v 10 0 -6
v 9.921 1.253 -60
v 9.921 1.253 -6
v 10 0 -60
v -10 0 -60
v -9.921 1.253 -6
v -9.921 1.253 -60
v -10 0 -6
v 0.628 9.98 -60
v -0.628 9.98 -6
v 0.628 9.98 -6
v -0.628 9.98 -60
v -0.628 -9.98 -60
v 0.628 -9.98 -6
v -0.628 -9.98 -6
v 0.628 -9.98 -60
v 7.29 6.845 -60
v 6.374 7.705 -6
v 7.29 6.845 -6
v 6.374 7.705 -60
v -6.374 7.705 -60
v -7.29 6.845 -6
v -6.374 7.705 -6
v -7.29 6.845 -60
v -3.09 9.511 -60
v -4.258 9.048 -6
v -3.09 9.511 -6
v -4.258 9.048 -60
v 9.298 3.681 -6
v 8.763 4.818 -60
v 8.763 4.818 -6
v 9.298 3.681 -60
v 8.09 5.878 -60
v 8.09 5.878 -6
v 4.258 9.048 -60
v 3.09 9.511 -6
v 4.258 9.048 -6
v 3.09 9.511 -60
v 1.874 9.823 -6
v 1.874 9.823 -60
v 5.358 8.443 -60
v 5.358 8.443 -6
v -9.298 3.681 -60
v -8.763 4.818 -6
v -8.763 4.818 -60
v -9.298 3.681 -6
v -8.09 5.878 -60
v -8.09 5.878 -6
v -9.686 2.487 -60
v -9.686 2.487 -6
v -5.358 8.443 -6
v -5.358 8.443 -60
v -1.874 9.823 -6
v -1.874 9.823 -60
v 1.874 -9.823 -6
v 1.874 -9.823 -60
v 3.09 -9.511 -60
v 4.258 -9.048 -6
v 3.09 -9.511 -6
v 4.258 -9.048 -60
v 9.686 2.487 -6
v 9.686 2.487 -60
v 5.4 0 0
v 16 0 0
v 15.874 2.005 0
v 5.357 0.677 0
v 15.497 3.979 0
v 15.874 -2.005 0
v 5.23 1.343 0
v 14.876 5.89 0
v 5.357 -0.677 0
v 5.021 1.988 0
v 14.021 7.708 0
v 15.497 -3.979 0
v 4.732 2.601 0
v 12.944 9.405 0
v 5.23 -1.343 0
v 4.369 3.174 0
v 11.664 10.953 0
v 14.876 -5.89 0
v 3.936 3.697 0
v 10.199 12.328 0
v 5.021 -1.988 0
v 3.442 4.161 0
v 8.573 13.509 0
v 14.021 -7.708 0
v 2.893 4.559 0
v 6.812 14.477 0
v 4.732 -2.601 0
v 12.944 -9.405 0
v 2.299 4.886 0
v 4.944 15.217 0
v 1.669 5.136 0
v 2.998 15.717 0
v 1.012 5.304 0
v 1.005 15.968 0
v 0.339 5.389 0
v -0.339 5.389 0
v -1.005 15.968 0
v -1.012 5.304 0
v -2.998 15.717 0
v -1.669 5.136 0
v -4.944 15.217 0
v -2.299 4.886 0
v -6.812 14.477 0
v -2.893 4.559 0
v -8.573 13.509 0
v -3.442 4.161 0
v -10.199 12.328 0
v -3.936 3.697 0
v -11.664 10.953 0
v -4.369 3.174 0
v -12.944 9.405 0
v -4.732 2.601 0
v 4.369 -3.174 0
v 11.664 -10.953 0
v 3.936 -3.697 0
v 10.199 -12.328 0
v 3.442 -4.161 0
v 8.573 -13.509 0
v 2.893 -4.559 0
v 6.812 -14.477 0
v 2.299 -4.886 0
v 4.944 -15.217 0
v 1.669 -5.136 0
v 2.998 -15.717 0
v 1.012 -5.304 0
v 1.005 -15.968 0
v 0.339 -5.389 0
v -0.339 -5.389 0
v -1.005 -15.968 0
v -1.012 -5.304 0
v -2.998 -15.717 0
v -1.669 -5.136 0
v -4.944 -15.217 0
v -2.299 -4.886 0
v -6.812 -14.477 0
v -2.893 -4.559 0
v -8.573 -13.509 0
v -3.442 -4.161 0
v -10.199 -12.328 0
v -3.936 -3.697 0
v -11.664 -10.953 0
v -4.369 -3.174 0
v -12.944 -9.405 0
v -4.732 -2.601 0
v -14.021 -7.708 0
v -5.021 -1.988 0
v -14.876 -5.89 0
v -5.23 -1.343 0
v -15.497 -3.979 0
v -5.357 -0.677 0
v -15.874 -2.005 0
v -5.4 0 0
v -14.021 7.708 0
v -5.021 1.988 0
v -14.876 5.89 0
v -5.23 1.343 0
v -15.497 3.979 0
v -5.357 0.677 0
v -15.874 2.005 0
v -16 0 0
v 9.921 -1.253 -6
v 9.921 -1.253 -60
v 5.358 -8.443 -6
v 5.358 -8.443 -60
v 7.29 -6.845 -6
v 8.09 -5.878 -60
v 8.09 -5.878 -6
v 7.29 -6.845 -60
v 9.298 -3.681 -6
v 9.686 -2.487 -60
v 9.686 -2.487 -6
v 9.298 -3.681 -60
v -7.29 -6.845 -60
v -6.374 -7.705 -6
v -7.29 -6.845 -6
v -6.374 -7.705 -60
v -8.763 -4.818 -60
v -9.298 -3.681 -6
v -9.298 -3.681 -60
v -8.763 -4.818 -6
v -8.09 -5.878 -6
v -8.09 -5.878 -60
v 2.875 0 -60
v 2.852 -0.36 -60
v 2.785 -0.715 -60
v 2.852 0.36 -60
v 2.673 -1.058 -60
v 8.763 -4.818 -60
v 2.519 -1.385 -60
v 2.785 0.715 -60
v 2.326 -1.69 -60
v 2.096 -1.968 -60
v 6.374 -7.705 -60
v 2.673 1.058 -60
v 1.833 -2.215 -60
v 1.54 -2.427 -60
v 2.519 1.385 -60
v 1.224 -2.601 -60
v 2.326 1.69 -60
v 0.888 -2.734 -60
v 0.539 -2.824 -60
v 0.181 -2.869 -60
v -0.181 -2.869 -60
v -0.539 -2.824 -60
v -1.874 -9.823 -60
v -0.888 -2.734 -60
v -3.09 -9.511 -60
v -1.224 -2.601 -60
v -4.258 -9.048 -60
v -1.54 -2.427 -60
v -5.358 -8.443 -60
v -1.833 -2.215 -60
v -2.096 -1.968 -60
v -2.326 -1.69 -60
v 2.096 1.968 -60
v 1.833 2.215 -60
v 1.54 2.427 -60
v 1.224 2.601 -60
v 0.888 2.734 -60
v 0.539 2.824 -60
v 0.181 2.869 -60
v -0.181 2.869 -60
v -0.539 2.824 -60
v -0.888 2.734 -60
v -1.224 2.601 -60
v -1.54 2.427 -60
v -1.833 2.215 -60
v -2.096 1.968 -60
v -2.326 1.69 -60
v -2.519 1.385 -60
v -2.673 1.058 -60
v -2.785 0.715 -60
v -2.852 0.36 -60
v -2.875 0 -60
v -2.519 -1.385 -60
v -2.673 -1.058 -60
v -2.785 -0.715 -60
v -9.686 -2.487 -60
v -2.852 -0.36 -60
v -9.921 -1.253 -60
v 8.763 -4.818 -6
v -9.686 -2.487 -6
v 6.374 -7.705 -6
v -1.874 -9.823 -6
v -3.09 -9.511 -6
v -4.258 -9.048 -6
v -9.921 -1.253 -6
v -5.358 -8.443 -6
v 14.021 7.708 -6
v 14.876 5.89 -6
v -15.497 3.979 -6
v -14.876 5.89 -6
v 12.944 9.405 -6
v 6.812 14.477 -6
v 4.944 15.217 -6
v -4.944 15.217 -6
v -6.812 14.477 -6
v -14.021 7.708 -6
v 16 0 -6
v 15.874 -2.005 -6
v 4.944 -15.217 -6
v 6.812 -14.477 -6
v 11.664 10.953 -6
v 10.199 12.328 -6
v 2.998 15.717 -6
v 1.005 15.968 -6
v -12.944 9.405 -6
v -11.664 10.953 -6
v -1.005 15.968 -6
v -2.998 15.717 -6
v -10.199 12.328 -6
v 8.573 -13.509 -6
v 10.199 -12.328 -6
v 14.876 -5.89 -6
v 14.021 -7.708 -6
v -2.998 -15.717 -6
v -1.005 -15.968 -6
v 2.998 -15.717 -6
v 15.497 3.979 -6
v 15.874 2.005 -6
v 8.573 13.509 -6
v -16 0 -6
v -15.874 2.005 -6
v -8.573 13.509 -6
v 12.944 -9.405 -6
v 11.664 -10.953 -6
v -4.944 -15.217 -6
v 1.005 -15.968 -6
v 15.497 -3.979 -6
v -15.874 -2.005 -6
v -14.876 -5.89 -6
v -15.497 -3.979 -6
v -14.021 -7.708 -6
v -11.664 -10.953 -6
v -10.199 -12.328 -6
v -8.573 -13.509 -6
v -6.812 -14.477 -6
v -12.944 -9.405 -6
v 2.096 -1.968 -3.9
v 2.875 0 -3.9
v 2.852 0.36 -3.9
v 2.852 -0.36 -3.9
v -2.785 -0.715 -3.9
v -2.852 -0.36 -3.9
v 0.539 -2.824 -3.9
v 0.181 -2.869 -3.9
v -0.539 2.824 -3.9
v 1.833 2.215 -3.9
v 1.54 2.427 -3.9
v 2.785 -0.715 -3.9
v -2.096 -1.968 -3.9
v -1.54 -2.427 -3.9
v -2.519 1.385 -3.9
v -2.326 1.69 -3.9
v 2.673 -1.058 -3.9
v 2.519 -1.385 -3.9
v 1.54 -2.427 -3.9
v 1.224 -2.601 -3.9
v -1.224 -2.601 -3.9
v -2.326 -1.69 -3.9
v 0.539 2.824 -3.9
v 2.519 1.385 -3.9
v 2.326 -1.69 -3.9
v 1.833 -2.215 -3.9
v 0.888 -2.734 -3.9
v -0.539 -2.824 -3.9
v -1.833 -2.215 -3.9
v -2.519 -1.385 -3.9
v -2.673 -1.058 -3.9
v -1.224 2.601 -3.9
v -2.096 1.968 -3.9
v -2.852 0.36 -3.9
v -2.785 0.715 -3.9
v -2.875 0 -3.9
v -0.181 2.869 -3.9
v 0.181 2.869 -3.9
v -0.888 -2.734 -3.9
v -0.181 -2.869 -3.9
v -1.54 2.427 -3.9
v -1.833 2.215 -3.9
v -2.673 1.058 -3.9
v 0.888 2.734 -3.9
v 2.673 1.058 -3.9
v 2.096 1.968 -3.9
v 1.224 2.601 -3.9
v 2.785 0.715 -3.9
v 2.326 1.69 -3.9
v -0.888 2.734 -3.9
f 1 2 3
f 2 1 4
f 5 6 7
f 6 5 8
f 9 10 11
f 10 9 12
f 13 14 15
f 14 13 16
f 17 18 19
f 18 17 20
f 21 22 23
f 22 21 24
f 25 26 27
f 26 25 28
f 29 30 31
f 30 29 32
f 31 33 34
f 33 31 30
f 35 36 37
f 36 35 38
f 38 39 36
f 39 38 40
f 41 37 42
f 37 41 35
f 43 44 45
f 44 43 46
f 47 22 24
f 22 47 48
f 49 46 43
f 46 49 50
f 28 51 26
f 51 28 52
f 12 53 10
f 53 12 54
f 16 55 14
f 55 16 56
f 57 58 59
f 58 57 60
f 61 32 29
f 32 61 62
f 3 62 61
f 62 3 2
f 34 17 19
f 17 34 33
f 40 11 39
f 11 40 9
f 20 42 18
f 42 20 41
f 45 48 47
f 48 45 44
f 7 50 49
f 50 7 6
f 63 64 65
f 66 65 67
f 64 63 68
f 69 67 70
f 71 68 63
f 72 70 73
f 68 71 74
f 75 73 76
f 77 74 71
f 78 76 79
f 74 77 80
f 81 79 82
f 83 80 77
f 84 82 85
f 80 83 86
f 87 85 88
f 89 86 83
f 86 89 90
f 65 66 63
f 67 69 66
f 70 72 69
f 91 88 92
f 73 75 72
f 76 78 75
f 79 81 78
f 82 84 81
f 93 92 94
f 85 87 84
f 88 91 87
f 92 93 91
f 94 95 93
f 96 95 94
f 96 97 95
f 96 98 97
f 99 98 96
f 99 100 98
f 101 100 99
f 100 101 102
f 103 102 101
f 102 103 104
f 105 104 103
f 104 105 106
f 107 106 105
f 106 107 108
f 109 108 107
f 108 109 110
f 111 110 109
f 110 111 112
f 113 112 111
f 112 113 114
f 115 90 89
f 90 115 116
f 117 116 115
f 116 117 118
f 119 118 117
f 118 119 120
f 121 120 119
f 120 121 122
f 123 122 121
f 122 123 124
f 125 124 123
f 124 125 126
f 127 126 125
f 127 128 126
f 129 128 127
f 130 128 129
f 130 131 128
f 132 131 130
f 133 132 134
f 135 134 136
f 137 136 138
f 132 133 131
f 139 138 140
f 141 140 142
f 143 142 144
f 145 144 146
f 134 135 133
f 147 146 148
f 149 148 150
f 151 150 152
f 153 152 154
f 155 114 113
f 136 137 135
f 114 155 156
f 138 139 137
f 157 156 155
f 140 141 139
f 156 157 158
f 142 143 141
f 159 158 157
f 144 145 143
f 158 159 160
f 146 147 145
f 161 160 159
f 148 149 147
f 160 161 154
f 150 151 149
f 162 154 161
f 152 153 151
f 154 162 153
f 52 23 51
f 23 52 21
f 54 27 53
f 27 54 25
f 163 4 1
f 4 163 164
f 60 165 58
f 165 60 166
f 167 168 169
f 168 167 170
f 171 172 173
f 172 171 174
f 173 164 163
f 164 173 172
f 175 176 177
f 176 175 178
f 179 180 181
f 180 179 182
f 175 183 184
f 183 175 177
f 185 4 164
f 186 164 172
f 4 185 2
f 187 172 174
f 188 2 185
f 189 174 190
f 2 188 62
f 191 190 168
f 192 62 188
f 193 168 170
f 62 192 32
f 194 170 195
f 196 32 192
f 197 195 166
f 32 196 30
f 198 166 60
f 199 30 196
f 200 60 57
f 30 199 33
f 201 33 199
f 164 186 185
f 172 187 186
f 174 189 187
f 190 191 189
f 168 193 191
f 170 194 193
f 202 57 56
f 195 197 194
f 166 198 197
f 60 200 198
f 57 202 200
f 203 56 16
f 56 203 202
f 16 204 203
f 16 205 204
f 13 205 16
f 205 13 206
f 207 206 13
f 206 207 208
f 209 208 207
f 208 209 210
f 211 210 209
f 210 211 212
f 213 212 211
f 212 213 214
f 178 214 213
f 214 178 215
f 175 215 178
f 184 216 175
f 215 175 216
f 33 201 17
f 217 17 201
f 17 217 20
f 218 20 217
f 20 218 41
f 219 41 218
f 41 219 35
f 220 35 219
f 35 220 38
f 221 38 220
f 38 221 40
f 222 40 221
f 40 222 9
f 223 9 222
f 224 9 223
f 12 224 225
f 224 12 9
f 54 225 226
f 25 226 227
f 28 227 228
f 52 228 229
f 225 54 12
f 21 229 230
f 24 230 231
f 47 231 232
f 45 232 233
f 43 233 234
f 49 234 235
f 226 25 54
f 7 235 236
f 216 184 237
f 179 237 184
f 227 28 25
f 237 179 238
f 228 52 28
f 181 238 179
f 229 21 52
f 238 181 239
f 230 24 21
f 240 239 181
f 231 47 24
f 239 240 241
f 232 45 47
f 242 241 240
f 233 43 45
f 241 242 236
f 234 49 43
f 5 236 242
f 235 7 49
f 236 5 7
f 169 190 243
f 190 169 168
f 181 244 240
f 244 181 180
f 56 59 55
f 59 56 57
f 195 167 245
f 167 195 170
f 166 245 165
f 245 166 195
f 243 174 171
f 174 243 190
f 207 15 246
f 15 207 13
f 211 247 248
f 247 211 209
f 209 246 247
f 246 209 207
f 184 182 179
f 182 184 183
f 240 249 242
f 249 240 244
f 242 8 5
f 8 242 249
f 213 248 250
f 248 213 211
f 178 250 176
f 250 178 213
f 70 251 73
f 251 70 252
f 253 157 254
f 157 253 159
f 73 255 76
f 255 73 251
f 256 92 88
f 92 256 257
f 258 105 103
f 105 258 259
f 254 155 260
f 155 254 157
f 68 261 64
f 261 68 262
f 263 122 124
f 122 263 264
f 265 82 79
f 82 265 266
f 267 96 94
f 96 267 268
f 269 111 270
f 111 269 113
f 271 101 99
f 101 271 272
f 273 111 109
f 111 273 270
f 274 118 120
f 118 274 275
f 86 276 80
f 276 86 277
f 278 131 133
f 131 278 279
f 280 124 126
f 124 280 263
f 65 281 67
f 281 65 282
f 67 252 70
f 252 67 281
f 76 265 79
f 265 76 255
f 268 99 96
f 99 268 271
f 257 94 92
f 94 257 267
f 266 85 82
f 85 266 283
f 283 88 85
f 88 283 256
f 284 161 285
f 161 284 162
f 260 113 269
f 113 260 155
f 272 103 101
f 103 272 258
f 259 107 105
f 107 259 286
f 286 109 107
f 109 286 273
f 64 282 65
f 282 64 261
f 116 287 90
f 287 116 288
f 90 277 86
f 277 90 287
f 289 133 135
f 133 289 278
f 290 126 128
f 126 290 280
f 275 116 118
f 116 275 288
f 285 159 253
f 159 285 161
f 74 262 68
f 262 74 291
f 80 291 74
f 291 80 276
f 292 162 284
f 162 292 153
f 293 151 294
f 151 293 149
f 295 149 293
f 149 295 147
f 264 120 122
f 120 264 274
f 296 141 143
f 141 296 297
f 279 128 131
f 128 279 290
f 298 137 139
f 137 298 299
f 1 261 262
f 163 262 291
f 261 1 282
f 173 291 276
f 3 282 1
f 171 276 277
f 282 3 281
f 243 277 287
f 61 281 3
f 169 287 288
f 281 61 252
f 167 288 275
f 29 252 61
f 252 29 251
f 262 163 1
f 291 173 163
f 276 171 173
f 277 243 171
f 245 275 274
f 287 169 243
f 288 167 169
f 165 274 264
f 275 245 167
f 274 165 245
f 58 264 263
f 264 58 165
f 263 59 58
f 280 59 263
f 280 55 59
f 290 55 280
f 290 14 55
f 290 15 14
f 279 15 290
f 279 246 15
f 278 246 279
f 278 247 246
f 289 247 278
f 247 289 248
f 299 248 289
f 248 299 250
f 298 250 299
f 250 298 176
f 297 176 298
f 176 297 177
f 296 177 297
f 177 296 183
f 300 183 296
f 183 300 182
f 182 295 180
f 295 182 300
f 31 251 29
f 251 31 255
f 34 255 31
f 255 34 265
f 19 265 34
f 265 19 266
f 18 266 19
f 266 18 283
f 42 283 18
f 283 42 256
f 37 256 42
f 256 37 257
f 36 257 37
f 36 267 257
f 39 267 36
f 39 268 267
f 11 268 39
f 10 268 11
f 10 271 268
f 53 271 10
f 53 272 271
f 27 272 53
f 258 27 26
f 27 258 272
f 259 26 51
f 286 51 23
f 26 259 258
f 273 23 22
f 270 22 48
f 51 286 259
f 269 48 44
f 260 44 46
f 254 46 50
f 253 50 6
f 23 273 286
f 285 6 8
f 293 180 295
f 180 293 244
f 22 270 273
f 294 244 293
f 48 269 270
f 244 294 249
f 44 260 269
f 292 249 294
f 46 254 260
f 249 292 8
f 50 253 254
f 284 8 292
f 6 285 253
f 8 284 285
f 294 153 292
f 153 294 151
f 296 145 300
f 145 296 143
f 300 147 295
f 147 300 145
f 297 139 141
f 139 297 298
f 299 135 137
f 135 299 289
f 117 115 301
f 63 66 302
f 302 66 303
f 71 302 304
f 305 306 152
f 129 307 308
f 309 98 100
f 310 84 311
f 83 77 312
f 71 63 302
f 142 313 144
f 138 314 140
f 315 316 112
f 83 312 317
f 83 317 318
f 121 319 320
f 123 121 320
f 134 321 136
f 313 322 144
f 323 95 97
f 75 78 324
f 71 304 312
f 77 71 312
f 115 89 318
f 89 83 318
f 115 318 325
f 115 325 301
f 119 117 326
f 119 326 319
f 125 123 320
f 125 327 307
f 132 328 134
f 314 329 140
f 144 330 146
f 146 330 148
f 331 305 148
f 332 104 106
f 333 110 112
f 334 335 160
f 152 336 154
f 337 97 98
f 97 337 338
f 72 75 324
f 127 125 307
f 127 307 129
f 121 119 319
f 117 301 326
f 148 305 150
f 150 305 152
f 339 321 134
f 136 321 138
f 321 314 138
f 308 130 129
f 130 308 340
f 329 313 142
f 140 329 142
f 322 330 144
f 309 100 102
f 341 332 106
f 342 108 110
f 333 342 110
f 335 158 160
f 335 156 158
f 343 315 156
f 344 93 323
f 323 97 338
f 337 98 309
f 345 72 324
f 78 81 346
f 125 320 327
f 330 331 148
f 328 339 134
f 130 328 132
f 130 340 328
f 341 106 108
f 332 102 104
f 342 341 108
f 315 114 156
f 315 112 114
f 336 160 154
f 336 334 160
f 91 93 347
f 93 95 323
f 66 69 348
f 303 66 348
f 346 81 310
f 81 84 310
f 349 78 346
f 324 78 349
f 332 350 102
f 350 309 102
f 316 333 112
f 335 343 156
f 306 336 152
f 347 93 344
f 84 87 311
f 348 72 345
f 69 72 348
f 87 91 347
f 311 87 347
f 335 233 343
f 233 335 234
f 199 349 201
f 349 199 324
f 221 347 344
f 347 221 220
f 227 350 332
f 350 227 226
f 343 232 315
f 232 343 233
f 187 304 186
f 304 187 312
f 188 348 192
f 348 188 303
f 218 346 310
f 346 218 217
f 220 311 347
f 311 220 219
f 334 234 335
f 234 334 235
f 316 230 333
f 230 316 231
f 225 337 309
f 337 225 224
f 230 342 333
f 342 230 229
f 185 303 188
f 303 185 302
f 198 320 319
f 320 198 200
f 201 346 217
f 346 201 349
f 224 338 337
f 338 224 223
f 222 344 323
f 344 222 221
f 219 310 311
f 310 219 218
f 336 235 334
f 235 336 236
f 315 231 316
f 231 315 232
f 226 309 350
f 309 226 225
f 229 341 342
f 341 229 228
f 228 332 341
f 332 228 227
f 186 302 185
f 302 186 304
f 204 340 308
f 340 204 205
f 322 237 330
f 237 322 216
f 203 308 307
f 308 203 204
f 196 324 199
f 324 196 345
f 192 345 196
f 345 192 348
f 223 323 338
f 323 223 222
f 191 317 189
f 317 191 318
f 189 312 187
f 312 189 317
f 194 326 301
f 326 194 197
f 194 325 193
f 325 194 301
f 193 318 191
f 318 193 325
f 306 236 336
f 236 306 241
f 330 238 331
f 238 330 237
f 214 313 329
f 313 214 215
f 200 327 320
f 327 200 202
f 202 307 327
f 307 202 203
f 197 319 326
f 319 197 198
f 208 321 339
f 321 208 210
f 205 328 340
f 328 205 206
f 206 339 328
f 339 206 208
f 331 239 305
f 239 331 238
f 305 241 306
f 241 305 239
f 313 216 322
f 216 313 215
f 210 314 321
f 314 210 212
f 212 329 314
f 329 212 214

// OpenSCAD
$fn = 50;


difference() {
	union() {
		translate(v = [0, 0, -60.0000000000]) {
			cylinder(h = 60, r = 10.0000000000);
		}
		translate(v = [0, 0, -6.0000000000]) {
			cylinder(h = 6, r = 16.0000000000);
		}
	}
	union() {
		translate(v = [0, 0, 0]) {
			rotate(a = [0, 0, 0]) {
				difference() {
					union() {
						#translate(v = [0, 0, -60.0000000000]) {
							cylinder(h = 60, r = 2.6000000000);
						}
						#translate(v = [0, 0, -3.9000000000]) {
							cylinder(h = 3.9000000000, r1 = 2.8750000000, r2 = 5.4000000000);
						}
						#translate(v = [0, 0, -60.0000000000]) {
							cylinder(h = 60, r = 2.8750000000);
						}
						#translate(v = [0, 0, -60.0000000000]) {
							cylinder(h = 60, r = 2.6000000000);
						}
					}
					union();
				}
			}
		}
	}
}
